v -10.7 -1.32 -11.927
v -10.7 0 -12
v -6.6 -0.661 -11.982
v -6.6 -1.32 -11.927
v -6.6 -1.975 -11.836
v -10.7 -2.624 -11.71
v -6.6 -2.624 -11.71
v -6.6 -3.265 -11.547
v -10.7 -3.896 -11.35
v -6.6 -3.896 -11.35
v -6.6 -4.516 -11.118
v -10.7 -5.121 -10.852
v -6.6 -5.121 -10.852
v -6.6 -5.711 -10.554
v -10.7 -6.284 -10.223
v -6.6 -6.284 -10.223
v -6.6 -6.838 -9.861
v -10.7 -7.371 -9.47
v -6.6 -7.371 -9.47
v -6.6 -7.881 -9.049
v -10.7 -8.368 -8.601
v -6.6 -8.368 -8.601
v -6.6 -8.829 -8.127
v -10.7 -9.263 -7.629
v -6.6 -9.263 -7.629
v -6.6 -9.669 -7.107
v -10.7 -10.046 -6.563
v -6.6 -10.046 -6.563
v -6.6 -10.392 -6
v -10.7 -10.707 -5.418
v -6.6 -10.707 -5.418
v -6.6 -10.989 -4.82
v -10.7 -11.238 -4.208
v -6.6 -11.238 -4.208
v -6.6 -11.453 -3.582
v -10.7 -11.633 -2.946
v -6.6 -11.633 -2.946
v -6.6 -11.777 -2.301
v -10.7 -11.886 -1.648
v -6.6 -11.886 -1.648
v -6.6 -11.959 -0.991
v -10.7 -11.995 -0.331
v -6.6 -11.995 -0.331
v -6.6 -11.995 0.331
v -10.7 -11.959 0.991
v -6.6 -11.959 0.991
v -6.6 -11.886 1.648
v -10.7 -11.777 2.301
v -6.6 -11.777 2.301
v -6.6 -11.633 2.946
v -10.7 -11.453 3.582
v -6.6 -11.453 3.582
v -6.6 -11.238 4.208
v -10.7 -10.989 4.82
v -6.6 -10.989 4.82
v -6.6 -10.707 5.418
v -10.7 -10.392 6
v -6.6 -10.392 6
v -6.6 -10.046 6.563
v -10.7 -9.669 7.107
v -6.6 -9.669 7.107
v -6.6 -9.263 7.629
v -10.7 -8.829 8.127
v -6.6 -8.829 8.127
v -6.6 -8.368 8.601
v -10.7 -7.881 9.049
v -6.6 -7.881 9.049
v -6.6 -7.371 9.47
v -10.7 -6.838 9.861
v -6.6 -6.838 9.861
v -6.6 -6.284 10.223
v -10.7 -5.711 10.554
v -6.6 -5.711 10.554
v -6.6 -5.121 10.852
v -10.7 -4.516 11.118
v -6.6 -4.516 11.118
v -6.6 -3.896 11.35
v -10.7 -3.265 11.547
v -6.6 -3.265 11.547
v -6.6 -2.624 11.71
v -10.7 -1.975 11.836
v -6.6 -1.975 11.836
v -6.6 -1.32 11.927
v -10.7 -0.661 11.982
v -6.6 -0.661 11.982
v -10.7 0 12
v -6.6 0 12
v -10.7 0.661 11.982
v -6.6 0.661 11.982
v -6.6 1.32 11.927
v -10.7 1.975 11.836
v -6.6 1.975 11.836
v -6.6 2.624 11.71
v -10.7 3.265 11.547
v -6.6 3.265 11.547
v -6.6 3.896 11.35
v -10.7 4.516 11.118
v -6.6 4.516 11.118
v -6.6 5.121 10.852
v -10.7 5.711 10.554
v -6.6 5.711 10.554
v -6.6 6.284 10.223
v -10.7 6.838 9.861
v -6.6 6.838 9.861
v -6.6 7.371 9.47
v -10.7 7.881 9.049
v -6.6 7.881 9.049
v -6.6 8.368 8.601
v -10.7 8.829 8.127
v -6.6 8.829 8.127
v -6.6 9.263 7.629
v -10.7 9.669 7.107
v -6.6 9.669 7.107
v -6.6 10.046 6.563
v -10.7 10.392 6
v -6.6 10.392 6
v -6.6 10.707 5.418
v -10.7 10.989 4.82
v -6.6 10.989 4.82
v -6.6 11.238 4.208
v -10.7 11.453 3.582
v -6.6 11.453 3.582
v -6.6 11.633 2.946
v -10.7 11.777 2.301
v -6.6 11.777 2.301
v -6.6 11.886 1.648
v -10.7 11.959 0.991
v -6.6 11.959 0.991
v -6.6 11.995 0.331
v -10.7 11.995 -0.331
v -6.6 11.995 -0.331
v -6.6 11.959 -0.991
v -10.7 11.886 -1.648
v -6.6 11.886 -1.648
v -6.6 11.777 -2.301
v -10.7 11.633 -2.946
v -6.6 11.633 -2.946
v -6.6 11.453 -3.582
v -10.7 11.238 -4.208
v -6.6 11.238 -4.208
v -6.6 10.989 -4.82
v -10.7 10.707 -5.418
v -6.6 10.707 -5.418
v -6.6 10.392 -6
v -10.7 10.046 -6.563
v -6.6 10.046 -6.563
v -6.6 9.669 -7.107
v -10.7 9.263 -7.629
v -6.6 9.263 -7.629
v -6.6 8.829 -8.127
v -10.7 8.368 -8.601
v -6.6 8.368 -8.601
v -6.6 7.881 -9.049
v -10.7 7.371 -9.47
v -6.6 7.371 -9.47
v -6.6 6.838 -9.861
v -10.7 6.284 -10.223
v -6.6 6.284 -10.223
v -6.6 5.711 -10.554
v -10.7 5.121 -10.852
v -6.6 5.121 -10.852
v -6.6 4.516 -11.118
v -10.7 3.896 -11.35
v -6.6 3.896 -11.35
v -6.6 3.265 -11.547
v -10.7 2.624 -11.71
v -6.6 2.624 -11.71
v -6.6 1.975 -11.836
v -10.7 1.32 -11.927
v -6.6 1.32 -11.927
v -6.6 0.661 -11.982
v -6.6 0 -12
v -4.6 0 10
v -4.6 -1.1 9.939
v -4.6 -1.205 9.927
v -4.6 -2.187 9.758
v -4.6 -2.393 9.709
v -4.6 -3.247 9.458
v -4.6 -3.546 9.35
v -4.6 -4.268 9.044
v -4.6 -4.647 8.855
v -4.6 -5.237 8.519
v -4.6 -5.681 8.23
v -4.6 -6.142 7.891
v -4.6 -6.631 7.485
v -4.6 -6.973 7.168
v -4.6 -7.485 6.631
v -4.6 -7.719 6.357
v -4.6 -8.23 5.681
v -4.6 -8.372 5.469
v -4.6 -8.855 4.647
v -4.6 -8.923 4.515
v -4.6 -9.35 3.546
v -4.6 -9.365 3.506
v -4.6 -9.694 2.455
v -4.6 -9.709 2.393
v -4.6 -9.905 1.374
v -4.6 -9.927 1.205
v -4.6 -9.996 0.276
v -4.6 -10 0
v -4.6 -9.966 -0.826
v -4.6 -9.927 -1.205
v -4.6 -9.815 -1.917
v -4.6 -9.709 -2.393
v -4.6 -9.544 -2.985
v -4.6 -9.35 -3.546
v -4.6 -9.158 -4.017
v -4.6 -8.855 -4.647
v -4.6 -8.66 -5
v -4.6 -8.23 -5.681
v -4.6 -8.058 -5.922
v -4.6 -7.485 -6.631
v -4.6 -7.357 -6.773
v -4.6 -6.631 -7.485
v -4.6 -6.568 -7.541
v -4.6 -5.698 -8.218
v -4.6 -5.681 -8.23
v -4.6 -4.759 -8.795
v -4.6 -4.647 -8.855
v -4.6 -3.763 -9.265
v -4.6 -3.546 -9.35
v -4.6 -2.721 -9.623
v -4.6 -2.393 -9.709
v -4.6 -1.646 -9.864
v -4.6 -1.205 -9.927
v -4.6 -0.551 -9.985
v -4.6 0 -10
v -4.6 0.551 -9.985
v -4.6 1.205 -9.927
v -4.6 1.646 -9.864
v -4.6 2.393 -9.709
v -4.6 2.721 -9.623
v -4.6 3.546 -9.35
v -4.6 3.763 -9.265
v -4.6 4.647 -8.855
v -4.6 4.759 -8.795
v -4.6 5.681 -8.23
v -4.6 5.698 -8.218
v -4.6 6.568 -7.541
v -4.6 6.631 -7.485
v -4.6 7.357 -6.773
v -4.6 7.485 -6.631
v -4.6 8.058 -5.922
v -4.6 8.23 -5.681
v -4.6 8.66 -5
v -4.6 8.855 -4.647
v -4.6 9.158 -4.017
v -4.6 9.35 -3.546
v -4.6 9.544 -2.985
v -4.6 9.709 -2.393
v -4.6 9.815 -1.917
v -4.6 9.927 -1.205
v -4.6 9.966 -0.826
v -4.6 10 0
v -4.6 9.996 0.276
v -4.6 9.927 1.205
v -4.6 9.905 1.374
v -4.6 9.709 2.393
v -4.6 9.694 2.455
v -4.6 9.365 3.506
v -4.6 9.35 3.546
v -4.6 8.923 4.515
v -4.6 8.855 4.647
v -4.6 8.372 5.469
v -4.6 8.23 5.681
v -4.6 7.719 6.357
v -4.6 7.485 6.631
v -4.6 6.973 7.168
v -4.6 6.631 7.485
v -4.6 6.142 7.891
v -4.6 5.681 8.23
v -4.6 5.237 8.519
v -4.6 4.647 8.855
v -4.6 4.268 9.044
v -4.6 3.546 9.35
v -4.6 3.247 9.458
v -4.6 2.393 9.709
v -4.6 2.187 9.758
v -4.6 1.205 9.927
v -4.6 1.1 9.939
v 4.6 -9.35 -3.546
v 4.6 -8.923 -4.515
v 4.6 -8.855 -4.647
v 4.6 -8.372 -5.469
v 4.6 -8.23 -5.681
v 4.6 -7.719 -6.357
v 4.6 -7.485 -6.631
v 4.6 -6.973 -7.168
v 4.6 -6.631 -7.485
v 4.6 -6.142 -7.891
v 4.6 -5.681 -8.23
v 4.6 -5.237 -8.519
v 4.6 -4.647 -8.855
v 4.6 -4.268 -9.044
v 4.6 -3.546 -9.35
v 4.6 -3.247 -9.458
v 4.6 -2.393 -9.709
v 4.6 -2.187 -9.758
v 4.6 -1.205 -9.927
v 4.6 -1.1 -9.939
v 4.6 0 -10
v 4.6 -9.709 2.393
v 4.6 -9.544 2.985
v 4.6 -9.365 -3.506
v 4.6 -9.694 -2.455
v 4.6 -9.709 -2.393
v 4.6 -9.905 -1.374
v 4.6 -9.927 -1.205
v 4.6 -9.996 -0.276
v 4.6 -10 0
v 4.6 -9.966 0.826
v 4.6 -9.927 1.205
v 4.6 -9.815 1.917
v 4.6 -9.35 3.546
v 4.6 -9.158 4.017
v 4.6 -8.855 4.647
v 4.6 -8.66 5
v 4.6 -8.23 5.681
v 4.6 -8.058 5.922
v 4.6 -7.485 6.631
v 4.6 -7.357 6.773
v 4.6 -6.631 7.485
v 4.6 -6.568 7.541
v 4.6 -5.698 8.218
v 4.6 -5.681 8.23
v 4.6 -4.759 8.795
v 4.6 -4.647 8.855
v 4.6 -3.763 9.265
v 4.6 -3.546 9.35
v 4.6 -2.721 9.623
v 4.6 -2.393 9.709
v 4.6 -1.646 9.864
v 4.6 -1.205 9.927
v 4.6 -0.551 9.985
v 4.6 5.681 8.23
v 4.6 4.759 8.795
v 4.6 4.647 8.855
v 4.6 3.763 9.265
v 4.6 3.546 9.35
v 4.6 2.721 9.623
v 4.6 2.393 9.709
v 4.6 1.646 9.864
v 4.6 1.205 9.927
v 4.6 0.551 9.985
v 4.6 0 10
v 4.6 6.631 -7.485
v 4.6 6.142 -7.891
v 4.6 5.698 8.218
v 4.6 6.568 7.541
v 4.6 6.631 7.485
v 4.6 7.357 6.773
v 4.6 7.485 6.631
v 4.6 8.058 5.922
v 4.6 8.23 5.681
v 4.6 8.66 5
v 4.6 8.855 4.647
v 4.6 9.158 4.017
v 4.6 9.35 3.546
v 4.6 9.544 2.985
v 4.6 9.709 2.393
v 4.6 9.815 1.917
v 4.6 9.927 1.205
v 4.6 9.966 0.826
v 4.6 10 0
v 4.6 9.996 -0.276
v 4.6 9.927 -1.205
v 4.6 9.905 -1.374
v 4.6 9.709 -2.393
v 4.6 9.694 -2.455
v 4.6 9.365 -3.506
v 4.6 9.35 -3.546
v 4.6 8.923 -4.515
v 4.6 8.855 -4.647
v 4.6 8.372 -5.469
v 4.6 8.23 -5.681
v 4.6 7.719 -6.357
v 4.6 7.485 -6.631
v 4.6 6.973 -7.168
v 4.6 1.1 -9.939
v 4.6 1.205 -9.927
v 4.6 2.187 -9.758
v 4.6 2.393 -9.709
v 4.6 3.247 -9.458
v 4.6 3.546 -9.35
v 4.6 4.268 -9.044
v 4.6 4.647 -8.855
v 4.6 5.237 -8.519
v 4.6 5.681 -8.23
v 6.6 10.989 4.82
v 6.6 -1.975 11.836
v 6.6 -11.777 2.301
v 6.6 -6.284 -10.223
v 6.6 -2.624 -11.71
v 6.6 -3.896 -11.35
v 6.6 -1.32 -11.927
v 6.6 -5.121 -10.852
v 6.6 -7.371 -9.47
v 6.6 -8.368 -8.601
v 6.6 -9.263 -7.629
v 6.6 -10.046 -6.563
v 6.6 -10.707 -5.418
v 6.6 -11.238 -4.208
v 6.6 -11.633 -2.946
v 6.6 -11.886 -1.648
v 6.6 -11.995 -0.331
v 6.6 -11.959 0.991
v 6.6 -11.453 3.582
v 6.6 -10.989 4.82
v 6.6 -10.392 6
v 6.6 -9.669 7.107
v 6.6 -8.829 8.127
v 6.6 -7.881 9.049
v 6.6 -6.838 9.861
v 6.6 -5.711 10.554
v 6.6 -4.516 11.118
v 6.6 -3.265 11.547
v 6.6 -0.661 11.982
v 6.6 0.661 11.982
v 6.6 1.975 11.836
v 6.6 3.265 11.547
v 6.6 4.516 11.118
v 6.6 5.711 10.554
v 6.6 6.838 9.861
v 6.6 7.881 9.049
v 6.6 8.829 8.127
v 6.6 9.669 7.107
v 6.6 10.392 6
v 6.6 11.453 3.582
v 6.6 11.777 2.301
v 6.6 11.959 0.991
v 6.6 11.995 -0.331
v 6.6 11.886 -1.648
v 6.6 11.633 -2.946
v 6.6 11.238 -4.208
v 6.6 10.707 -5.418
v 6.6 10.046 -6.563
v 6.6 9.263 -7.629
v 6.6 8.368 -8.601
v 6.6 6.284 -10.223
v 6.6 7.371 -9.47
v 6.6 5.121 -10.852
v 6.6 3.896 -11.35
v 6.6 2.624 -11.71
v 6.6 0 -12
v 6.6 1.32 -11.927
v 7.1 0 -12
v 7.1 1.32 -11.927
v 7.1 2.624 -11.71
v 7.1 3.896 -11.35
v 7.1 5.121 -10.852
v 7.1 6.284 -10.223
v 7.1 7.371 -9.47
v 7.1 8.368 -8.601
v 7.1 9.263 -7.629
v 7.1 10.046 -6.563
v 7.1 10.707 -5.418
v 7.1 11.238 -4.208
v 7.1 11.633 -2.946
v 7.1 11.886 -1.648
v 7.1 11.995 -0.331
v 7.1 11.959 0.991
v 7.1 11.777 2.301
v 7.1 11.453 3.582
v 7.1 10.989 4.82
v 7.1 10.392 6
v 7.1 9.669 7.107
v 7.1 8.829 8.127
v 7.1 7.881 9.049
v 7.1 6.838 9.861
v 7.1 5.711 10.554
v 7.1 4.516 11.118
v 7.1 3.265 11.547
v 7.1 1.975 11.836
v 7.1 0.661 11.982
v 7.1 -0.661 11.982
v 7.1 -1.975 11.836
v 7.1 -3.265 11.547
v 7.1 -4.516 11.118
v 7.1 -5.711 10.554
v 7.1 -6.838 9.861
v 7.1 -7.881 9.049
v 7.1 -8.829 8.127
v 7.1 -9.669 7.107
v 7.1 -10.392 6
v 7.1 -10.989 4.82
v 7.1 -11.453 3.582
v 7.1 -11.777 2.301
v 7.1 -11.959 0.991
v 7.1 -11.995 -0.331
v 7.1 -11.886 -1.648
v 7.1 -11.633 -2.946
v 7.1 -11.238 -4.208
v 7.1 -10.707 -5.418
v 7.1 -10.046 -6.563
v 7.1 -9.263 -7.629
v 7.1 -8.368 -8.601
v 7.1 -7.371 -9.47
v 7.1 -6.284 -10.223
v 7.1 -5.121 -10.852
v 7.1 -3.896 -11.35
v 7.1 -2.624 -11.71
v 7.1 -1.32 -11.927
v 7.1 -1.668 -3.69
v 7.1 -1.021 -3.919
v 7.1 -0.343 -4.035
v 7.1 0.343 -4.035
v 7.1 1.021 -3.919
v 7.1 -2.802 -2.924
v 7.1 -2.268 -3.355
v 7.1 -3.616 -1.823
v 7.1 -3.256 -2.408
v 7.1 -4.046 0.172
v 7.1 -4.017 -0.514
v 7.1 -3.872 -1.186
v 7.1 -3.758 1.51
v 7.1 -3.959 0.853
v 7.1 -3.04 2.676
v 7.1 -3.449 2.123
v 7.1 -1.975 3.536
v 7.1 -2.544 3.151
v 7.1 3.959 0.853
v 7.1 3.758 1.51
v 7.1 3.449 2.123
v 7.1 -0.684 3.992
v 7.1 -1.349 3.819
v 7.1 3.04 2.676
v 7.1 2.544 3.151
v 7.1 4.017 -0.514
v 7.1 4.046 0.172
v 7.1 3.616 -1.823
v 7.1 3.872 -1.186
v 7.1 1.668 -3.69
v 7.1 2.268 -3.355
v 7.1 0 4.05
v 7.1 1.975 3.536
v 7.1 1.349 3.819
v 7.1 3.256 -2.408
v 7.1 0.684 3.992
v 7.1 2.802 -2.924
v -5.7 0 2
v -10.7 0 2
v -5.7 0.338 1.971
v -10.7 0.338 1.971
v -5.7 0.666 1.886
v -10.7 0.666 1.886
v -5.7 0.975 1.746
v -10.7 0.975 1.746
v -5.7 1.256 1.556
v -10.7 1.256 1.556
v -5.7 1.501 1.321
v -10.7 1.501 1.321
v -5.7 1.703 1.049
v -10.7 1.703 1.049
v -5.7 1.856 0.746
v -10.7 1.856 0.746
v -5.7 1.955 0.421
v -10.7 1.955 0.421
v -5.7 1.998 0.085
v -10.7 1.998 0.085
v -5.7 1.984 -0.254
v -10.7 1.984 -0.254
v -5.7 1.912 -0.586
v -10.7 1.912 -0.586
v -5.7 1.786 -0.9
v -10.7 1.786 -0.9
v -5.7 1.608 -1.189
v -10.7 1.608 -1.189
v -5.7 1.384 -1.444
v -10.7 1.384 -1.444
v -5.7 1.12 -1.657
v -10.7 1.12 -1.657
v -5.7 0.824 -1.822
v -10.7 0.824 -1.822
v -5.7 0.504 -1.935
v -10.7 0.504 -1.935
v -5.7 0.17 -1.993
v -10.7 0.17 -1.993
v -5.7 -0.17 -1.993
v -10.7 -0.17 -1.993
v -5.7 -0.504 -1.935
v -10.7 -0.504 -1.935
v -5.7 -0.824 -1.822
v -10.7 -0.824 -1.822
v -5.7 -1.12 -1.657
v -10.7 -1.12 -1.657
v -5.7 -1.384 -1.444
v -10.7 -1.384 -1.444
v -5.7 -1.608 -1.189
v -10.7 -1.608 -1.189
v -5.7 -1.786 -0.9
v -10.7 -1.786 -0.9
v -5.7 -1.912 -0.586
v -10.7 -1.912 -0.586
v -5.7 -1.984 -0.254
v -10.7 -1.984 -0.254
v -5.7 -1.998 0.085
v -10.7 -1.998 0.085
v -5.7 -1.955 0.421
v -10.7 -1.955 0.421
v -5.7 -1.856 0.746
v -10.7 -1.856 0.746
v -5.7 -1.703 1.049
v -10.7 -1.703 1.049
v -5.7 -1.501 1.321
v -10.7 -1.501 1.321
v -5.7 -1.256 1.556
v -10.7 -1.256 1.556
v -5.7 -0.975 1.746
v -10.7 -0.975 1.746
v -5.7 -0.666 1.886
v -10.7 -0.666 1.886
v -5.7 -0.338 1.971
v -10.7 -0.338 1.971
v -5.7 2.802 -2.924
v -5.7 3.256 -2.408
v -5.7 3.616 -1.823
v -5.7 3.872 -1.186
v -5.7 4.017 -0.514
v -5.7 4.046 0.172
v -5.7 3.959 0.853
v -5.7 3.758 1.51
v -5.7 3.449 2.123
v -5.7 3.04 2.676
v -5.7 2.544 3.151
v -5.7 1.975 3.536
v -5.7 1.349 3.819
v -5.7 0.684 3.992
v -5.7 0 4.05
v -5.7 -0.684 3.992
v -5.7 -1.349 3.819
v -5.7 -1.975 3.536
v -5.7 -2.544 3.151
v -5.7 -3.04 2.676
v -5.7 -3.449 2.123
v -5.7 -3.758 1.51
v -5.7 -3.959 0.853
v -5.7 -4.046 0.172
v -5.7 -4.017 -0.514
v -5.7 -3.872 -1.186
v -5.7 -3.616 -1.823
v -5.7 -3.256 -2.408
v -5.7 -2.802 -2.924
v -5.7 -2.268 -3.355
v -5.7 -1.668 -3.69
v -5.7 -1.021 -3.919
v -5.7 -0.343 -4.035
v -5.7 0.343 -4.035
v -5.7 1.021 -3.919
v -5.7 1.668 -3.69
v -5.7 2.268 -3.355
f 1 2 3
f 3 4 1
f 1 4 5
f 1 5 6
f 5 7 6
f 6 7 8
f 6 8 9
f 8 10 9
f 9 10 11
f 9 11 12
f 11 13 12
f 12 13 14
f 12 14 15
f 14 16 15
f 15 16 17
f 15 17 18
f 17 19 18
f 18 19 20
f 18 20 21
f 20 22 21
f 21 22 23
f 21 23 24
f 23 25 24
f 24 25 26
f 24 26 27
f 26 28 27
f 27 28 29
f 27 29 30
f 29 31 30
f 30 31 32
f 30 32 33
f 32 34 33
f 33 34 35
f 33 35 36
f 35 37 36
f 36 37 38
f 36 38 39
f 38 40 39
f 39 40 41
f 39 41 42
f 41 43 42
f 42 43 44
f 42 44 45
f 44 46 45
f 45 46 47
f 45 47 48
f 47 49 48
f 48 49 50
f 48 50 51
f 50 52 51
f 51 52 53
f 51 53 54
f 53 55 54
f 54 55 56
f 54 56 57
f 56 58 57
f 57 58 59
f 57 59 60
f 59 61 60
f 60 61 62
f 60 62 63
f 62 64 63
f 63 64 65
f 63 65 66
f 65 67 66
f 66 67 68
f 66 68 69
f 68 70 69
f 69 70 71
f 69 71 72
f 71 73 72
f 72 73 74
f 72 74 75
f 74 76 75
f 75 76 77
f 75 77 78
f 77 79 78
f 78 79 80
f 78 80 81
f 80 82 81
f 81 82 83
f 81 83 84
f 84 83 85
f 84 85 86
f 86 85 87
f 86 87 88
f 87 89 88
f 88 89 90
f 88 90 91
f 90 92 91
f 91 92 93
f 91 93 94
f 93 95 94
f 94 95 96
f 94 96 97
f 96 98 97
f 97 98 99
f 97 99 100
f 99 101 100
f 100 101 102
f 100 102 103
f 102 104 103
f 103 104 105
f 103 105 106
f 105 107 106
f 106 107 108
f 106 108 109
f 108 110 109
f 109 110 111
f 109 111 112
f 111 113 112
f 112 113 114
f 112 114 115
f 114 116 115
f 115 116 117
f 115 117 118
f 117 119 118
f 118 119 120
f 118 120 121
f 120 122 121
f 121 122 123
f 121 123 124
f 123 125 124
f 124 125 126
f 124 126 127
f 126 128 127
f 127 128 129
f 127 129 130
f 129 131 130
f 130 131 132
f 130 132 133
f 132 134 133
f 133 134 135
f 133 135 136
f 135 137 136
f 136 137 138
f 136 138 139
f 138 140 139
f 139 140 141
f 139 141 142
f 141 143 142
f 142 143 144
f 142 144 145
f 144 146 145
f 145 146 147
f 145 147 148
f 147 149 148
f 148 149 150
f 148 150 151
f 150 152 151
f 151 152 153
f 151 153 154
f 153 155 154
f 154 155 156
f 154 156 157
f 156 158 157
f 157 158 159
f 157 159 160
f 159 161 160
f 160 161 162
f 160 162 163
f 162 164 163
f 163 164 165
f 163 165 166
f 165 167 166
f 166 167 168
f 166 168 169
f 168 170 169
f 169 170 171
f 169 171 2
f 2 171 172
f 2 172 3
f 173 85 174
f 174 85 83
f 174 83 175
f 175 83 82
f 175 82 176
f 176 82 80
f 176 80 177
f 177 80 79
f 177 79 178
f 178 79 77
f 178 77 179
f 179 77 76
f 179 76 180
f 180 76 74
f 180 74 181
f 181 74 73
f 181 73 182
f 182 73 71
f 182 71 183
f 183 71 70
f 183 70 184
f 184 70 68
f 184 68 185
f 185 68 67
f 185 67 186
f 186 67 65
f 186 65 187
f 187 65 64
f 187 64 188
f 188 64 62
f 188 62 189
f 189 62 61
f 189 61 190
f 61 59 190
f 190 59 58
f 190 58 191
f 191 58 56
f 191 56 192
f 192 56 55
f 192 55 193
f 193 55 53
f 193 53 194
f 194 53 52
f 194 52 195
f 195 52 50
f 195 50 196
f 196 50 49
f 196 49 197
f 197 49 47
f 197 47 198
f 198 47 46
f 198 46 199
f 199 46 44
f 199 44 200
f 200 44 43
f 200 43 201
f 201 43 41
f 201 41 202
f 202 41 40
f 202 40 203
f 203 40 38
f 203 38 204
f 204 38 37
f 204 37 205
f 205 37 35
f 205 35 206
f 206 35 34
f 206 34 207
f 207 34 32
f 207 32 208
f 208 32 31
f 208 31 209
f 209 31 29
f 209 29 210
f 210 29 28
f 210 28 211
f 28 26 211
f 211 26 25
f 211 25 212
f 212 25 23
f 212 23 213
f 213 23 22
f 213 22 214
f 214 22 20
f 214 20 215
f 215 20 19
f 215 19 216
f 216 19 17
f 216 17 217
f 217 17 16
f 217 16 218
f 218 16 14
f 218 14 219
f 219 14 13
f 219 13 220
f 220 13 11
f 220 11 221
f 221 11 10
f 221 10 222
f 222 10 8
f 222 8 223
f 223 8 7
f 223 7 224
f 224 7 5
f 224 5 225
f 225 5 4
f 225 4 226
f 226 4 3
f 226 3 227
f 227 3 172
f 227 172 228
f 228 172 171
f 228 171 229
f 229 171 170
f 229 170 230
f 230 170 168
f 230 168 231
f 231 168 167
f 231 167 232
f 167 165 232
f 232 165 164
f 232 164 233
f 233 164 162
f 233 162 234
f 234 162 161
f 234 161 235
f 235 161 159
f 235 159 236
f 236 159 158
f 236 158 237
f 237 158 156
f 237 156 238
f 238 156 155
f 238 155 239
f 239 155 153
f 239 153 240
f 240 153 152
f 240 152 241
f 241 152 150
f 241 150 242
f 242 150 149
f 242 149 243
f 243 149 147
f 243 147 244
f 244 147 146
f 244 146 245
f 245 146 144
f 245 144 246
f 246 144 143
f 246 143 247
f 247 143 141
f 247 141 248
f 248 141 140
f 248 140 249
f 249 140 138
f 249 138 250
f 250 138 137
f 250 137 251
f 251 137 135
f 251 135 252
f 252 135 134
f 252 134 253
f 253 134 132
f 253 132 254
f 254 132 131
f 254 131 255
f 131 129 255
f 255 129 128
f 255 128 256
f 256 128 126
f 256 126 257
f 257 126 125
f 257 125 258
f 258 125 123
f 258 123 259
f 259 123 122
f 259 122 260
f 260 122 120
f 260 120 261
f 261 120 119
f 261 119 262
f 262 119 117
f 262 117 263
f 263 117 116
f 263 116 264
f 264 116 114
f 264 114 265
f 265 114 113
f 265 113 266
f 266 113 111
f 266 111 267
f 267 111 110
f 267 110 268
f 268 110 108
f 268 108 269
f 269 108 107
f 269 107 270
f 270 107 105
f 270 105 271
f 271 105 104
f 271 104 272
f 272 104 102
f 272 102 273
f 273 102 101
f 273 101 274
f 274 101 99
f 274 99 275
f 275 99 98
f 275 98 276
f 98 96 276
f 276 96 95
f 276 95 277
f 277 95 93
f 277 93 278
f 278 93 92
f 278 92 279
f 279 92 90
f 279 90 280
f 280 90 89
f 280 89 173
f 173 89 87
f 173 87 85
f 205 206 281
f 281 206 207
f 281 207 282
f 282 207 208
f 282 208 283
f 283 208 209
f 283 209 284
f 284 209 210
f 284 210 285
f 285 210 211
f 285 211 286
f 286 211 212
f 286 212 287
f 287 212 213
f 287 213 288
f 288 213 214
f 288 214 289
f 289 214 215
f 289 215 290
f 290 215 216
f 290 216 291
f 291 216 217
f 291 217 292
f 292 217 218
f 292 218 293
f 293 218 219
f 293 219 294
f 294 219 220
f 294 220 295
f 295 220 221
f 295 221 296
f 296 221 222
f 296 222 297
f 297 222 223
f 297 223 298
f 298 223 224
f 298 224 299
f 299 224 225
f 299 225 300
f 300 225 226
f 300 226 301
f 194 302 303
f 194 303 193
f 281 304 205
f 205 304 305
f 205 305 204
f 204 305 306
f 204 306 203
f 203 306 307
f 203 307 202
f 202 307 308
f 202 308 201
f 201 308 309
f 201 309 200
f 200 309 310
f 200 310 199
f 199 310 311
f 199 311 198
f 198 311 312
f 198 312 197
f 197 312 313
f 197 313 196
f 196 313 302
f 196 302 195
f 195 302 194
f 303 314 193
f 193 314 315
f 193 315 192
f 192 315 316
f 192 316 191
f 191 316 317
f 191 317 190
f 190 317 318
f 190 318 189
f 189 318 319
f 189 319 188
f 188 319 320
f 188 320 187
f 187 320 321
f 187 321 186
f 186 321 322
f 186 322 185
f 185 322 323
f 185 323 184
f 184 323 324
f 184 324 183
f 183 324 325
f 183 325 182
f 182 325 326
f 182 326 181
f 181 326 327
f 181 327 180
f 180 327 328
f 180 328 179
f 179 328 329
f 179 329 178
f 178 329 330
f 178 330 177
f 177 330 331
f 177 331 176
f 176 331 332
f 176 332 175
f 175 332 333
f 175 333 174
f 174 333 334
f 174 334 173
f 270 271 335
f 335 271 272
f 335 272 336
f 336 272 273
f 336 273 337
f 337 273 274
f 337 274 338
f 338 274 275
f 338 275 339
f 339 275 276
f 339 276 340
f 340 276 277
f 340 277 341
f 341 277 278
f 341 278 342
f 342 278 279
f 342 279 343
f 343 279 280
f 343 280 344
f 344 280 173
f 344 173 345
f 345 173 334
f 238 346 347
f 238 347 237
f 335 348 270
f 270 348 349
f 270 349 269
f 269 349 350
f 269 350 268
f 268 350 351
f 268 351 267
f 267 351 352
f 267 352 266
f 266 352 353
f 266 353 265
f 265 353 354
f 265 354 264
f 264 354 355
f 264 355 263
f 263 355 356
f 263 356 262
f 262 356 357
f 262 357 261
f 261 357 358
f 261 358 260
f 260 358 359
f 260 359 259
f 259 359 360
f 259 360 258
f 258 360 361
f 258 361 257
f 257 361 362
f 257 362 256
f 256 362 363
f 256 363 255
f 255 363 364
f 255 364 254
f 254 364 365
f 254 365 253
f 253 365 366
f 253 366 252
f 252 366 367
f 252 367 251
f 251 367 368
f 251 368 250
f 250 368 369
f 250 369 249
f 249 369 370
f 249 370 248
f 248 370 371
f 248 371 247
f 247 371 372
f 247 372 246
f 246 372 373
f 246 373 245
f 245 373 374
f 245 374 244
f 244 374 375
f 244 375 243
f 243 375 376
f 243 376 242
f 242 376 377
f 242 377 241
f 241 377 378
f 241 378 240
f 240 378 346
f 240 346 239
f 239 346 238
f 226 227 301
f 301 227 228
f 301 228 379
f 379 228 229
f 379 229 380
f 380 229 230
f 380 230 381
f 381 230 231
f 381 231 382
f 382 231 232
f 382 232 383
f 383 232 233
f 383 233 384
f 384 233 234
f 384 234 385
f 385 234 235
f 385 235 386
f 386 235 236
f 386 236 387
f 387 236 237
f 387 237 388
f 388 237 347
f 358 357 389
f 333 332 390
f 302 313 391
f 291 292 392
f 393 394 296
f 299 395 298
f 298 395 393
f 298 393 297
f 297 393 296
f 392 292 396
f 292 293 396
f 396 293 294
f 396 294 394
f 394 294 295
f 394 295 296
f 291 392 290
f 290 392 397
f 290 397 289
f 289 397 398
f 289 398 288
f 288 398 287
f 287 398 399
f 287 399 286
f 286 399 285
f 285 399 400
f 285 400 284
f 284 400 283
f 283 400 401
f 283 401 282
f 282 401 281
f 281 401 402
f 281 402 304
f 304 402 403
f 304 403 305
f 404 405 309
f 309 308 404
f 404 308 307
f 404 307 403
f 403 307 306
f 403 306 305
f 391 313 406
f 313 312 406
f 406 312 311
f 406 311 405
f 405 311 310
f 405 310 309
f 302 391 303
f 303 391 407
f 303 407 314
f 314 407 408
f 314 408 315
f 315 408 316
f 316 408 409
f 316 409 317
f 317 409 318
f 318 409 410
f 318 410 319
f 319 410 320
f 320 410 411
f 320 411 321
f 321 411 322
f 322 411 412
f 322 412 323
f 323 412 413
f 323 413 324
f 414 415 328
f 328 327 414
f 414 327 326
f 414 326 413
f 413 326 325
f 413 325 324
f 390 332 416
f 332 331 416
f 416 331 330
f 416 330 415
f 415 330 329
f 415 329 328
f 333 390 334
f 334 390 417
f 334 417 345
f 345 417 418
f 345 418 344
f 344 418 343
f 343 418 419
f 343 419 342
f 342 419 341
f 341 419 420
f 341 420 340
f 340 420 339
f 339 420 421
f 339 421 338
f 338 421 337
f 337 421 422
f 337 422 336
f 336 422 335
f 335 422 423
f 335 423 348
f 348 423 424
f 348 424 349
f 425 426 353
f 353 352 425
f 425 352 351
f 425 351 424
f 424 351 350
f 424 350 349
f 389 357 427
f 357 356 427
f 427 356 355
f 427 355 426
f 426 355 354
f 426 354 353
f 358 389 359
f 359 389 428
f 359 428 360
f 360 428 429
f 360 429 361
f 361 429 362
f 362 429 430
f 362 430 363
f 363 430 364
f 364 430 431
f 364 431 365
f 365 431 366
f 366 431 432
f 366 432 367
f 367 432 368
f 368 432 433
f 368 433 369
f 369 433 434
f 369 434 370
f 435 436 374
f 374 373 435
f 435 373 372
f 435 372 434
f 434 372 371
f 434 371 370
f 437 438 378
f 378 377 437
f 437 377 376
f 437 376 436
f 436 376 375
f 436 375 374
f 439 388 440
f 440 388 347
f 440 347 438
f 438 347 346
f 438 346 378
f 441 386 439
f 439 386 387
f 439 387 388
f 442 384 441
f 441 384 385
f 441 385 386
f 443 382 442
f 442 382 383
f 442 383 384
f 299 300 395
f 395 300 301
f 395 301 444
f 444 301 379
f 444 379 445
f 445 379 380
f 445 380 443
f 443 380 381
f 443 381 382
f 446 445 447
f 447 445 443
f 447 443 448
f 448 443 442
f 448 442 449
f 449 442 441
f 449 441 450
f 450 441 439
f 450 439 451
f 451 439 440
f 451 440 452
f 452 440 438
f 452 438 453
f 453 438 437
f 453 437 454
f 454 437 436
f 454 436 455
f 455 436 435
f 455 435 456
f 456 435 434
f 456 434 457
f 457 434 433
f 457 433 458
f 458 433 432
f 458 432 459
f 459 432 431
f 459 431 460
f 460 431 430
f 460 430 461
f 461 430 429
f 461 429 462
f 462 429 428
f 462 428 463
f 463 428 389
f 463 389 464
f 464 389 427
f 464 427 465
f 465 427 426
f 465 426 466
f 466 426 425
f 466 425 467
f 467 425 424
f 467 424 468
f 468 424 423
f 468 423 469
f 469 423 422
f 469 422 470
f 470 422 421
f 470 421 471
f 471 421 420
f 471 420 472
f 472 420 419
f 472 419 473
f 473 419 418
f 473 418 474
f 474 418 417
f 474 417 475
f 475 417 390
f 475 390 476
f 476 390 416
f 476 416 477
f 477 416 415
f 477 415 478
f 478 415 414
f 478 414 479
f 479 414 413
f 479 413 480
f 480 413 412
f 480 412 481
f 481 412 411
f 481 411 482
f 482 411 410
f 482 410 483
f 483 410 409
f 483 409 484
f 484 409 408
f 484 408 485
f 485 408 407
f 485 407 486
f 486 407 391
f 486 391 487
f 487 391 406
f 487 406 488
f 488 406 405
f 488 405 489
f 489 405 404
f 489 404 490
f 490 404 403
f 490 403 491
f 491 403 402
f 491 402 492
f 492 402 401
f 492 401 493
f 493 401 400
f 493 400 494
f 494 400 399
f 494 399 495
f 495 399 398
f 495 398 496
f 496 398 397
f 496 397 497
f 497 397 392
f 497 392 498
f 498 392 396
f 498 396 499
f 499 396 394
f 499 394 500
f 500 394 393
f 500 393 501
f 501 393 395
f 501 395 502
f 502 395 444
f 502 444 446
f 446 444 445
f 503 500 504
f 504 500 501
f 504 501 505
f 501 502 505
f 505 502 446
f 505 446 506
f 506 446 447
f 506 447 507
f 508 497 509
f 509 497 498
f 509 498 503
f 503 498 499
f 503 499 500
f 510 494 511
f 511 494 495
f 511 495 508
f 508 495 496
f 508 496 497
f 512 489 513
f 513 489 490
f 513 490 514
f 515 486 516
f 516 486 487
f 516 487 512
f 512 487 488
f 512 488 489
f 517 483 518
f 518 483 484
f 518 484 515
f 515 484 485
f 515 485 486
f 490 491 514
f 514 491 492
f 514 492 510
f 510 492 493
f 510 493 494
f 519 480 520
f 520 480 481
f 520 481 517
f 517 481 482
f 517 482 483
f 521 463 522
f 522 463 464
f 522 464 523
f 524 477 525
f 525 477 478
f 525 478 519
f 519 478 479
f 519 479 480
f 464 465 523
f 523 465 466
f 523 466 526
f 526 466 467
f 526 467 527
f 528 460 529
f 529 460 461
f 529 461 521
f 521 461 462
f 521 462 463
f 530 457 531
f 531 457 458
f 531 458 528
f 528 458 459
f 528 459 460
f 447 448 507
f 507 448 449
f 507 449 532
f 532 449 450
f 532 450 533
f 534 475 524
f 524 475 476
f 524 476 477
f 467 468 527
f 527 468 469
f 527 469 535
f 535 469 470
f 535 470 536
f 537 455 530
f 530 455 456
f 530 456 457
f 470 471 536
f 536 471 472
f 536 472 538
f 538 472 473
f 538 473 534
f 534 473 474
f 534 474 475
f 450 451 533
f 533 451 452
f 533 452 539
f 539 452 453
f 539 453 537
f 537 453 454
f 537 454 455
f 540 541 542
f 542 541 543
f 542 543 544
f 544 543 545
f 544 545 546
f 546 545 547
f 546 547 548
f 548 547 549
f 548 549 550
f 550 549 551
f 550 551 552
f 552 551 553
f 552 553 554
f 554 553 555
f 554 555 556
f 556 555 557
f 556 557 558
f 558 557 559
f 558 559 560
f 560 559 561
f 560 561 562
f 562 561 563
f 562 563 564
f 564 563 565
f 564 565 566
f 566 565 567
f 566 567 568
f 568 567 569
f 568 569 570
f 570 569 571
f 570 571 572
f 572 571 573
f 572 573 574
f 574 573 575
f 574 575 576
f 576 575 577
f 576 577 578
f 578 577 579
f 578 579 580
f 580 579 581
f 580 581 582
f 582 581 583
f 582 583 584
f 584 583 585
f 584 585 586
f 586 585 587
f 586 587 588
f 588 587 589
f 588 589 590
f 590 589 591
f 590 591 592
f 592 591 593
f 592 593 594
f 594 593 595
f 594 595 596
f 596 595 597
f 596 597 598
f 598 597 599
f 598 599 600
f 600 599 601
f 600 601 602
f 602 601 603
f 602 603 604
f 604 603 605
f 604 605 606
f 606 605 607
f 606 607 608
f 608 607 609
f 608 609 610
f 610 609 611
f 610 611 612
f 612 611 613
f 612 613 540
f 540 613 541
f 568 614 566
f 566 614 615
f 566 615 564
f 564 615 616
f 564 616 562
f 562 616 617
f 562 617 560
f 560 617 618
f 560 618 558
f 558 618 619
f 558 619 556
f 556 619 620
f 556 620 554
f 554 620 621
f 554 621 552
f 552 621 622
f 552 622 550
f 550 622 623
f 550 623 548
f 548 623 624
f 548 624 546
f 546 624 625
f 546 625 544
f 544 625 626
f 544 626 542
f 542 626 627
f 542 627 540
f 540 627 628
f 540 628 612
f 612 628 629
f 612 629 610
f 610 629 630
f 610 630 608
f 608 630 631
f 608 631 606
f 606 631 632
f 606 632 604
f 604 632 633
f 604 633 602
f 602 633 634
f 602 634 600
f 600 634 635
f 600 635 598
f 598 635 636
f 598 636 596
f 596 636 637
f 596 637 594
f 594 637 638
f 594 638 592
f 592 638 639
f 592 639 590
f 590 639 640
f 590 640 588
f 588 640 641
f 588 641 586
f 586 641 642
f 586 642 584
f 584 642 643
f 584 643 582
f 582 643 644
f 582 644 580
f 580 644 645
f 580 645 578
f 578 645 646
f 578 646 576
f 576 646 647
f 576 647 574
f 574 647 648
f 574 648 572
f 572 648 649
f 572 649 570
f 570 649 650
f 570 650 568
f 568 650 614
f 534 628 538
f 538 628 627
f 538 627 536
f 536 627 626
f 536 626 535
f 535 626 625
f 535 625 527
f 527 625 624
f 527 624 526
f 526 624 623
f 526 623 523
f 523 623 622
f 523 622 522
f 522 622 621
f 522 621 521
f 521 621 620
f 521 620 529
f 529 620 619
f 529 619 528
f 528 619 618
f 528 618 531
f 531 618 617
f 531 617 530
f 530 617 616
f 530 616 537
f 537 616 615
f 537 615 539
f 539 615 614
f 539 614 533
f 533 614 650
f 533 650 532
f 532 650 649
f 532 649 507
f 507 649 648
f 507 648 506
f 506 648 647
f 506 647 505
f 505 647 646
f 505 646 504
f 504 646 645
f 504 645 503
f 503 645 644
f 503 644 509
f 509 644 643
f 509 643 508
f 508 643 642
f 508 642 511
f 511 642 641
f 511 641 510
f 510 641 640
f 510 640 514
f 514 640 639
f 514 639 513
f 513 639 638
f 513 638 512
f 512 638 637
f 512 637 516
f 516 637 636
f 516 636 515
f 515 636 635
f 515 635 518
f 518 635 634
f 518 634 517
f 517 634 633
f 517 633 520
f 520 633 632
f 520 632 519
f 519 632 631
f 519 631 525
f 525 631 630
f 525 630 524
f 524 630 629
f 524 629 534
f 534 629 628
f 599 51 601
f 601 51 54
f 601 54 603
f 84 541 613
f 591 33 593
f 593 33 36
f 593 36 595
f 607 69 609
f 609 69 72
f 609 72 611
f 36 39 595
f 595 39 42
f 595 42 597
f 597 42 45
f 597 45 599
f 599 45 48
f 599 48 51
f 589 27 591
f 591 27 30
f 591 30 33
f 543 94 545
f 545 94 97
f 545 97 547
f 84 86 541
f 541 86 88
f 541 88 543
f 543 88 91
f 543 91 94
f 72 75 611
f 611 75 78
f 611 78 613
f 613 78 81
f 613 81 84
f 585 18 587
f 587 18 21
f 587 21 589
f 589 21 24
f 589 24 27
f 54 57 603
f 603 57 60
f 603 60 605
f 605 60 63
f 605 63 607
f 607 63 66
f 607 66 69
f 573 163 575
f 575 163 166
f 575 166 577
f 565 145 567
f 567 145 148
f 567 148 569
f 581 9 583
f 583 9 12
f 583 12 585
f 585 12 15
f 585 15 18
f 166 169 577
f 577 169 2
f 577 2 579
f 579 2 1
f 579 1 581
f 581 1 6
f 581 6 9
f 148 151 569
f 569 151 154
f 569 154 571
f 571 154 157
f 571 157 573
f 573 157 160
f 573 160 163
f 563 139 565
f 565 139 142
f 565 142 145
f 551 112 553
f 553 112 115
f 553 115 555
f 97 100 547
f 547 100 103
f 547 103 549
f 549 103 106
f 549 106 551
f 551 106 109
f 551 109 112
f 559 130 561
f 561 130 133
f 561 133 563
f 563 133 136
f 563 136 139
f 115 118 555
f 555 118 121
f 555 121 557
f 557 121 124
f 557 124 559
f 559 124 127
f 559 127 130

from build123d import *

# Parameters (mm, degrees)
SKETCH3_R           = 2
CUT_EXTRUDE1_DEPTH  = 14.8
CUT_EXTRUDE2_START  = -2
SKETCH4_R           = 4.05
CUT_EXTRUDE2_DEPTH  = 12.8
BOSS_EXTRUDE1_START = 3
SKETCH5_R           = 12
SKETCH5_R_2         = 2
BOSS_EXTRUDE1_DEPTH = 3


with BuildPart() as part:
    # Sketch2 → Revolve1 (revolve)
    with BuildSketch(Plane(origin=(0, 0, 0), x_dir=(1, 0, 0), z_dir=(0, 1, 0))):
        Polygon((-7.7, 12), (-7.7, 0), (-7.1, 0), (7.1, 0), (7.1, 12), (6.6, 12), (4.6, 10), (-4.6, 10), (-6.6, 12), (-7.1, 12), align=None)
    revolve(axis=Axis((7.1, 0, 0), (-1, 0, 0)))

    # Sketch3 → Cut-Extrude1 (cut)
    with BuildSketch(Plane.ZY.offset(7.7)):
        Circle(SKETCH3_R)
    extrude(amount=-CUT_EXTRUDE1_DEPTH, mode=Mode.SUBTRACT)

    # Sketch4 → Cut-Extrude2 (cut)
    with BuildSketch(Plane.ZY.offset(7.7).offset(CUT_EXTRUDE2_START)):
        Circle(SKETCH4_R)
    extrude(amount=-CUT_EXTRUDE2_DEPTH, mode=Mode.SUBTRACT)

    # Sketch5 → Boss-Extrude1 (add)
    with BuildSketch(Plane.ZY.offset(7.7).offset(BOSS_EXTRUDE1_START)):
        with Locations(Location((0, 0, 0), (0, 0, 180))):
            Circle(SKETCH5_R)
        Circle(SKETCH5_R_2, mode=Mode.SUBTRACT)
    extrude(amount=-BOSS_EXTRUDE1_DEPTH)


solid = part.part
